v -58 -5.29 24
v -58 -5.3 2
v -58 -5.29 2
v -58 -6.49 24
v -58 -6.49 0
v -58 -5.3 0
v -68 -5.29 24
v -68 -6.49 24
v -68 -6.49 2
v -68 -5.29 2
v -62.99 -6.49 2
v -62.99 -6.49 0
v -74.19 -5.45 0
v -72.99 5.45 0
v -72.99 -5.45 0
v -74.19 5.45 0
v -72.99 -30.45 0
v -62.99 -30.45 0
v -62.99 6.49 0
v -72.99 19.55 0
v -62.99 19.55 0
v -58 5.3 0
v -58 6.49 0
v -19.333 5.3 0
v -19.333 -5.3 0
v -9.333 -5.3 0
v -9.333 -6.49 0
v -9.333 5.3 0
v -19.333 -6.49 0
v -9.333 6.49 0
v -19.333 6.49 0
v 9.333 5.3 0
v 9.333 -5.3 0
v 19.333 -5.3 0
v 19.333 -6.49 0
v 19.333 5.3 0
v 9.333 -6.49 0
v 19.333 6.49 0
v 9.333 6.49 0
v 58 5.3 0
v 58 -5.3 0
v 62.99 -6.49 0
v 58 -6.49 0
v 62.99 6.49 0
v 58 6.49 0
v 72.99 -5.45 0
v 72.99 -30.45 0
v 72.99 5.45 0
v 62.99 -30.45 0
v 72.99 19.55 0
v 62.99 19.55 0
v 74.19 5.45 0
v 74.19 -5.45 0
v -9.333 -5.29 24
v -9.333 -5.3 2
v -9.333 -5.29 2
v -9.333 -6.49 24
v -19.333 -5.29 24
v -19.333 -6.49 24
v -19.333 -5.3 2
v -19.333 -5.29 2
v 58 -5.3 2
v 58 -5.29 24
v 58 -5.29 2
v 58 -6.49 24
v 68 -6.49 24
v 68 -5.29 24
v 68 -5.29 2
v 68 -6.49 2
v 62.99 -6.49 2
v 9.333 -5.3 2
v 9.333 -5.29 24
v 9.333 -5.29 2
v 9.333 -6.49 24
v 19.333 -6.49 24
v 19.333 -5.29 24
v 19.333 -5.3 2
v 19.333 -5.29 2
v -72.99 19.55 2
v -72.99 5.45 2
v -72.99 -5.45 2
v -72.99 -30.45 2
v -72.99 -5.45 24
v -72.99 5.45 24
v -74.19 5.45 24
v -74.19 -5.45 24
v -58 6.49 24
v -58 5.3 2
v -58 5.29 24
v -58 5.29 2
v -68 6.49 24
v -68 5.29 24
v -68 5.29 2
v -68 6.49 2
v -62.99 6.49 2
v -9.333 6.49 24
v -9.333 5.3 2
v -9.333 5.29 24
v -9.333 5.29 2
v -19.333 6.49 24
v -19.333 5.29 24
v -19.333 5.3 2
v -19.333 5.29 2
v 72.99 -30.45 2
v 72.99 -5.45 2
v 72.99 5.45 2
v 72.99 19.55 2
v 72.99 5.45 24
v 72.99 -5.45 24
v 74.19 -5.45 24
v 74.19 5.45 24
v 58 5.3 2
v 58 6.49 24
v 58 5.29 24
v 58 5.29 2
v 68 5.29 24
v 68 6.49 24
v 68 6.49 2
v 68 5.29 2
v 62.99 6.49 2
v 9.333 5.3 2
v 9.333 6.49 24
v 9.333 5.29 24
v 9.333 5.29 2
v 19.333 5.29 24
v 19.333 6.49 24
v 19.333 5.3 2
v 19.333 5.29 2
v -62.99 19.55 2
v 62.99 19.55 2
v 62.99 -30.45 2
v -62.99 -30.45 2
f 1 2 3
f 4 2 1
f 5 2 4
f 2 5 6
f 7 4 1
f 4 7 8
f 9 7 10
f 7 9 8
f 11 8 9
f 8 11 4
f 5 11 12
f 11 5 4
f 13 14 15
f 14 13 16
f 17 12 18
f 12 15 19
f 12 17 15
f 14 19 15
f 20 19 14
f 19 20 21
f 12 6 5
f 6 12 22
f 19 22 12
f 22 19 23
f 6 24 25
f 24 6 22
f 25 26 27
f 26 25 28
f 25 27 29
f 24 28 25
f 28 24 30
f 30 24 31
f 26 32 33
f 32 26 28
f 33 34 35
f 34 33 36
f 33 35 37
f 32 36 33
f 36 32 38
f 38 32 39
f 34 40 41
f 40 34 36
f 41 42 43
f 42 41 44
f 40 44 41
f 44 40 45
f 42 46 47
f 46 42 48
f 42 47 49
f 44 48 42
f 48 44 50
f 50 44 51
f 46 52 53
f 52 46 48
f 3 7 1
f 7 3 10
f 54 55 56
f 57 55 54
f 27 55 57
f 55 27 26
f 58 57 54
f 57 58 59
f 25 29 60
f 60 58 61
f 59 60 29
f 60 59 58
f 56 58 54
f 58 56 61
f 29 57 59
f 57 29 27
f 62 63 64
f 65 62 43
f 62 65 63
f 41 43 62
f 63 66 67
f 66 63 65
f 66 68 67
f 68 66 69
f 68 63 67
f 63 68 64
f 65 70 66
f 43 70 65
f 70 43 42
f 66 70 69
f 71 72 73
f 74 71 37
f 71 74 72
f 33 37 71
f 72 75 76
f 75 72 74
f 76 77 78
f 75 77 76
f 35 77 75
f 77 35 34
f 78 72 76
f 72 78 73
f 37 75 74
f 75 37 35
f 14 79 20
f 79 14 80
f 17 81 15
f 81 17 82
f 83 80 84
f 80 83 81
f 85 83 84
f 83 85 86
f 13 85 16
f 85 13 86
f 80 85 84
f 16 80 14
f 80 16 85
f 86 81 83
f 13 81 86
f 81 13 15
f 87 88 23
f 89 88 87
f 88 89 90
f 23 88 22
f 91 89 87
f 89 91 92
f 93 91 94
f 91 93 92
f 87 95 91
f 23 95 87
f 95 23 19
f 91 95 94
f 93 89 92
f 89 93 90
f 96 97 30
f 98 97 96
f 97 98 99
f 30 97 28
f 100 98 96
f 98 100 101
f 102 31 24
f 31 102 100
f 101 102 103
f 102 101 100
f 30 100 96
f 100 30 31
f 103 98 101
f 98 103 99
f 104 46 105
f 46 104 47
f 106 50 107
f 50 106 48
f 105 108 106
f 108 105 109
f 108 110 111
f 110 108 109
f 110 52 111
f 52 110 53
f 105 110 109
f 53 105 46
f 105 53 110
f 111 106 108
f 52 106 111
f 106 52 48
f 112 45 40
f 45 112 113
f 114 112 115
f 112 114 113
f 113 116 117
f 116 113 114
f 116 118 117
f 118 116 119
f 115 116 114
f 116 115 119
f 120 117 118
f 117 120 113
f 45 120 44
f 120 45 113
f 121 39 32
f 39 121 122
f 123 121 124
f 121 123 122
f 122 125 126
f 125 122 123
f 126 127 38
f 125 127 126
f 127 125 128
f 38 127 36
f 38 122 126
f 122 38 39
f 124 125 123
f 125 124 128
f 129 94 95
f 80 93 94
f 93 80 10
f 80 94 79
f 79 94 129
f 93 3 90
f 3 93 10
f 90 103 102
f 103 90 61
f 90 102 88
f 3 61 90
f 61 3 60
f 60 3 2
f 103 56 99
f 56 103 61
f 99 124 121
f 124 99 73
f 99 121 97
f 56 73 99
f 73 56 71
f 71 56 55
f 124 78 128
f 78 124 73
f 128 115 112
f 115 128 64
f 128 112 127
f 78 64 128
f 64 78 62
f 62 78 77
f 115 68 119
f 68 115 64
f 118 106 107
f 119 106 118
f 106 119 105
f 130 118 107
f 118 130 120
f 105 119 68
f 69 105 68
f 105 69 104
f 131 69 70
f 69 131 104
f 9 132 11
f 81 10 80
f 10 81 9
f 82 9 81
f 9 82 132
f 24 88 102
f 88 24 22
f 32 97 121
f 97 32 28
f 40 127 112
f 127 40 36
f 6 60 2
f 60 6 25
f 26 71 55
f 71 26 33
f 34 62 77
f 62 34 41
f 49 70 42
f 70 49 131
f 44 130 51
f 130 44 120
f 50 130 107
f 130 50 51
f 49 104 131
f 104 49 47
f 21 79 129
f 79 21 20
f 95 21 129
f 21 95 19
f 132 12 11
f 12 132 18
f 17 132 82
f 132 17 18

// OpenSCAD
// -*- mode: SCAD ; c-file-style: "ellemtel" ; coding: utf-8 -*-
//
// correctly sized simple shape to stack four picture 135 type film strips
//
// © 2018 Roland Sieker <ospalh@gmail.com>
// Licence: CC-BY-SA 4.0


// … to preview. You will get all parts when you click “Create Thing”.
part = "stack"; // [stack: Stapler, lid: Deckel]

// Set this to “render” and click on “Create Thing” when done with the setup.
preview = 1; // [0:render, 1:preview]
// not needed

ll = 11*13+3;  //
lld = ll-3;
wst = 10.6; // 9.2 mm + clearance
wld = 8.5; // Make it fit between the plates without problems
h = 20; // I have a lot of film strips i want to stack

w = 1.2;  // Wall width

epl = wld + 2*w;
spl = 10;
spo = 5;
spsp = ll/3;

hl = 50;
hw = 10;

/* [Hidden] */

// Done with the customizer

// *******************************************************
// Extra parameters. These can be changed reasonably safely.



p = 2;  // Bottom, top plate height
c = 0.4;  // Clearance
angle = 60; // Overhangs much below 60° are a problem for me

// *******************************************************
// Some shortcuts. These shouldn’t be changed

tau = 2 * PI;  // π is still wrong. τ = ⌀ ÷ r

xy_factor = 1/tan(angle);
// To get from a height to a horizontal width inclined correctly
z_factor = tan(angle);  // The other way around

he = h + 2*p;
spo2 = ll/2 - spo - spl;

some_distance = 50;
ms = 0.01;  // Muggeseggele.

// fn for differently sized objects and fs, fa; all for preview or rendering.
pna = 40;
pnb = 15;
pa = 5;
ps = 1;
rna = 180;
rnb = 30;
ra = 1;
rs = 0.1;
function na() = (preview) ? pna : rna;
function nb() = (preview) ? pnb : rnb;
$fs = (preview) ? ps : rs;
$fa = (preview) ? pa : ra;

// *******************************************************
// End setup



// *******************************************************
// Generate the parts

print_part();
// preview_parts();
// stack_parts();



module print_part()
{
   if ("stack" == part)
   {
      stack();
   }
   if ("lid" == part)
   {
      lid();
   }
}

module preview_parts()
{
   stack();
   translate([0, some_distance, 0])
   {
      lid();
   }
}

module stack_parts()
{
   // intersection()
   {
      color("yellow")
      {
         stack();
      }
      translate([0,0, 3*p])
      {
         color("red")
         {
            lid();
         }
      }
   }
}

// *******************************************************
// Code for the parts themselves

module stack()
{
   translate([0,0,p/2])
   {
      cube([ll, wst, p], center=true);
   }
   plates();
   h_cube();
   mirror()
   {
      h_cube();
   }
   module h_cube()
   {
      translate([ll/2-ms-hw/2 , -epl/2,p/2])
      {
         cube([hw, hl, p], center=true);
      }

   }
}


module lid()
{
   translate([0,0,p/2])
   {
      cube([lld, wld, p], center=true);
   }
}


module plates()
{
   end_plate();
   side_plate(0);
   side_plate(spsp);
   // side_plate(2*spsp);
   rotate(180)
   {
      side_plate(0);
      side_plate(spsp);
      // side_plate(2*spsp);
   }
   mirror()
   {
      end_plate();
      side_plate(0);
      side_plate(spsp);
      // side_plate(2*spsp);
      rotate(180)
      {
         side_plate(0);
         side_plate(spsp);
         // side_plate(2*spsp);
      }
   }
}

module end_plate()
{
   translate([ll/2-ms , -epl/2,0])
   {
      cube([w, epl, he]);
   }
}

module side_plate(xo)
{
   translate([spo2-xo, wst/2-ms,0])
   {
      cube([spl, w, he]);
   }
}
